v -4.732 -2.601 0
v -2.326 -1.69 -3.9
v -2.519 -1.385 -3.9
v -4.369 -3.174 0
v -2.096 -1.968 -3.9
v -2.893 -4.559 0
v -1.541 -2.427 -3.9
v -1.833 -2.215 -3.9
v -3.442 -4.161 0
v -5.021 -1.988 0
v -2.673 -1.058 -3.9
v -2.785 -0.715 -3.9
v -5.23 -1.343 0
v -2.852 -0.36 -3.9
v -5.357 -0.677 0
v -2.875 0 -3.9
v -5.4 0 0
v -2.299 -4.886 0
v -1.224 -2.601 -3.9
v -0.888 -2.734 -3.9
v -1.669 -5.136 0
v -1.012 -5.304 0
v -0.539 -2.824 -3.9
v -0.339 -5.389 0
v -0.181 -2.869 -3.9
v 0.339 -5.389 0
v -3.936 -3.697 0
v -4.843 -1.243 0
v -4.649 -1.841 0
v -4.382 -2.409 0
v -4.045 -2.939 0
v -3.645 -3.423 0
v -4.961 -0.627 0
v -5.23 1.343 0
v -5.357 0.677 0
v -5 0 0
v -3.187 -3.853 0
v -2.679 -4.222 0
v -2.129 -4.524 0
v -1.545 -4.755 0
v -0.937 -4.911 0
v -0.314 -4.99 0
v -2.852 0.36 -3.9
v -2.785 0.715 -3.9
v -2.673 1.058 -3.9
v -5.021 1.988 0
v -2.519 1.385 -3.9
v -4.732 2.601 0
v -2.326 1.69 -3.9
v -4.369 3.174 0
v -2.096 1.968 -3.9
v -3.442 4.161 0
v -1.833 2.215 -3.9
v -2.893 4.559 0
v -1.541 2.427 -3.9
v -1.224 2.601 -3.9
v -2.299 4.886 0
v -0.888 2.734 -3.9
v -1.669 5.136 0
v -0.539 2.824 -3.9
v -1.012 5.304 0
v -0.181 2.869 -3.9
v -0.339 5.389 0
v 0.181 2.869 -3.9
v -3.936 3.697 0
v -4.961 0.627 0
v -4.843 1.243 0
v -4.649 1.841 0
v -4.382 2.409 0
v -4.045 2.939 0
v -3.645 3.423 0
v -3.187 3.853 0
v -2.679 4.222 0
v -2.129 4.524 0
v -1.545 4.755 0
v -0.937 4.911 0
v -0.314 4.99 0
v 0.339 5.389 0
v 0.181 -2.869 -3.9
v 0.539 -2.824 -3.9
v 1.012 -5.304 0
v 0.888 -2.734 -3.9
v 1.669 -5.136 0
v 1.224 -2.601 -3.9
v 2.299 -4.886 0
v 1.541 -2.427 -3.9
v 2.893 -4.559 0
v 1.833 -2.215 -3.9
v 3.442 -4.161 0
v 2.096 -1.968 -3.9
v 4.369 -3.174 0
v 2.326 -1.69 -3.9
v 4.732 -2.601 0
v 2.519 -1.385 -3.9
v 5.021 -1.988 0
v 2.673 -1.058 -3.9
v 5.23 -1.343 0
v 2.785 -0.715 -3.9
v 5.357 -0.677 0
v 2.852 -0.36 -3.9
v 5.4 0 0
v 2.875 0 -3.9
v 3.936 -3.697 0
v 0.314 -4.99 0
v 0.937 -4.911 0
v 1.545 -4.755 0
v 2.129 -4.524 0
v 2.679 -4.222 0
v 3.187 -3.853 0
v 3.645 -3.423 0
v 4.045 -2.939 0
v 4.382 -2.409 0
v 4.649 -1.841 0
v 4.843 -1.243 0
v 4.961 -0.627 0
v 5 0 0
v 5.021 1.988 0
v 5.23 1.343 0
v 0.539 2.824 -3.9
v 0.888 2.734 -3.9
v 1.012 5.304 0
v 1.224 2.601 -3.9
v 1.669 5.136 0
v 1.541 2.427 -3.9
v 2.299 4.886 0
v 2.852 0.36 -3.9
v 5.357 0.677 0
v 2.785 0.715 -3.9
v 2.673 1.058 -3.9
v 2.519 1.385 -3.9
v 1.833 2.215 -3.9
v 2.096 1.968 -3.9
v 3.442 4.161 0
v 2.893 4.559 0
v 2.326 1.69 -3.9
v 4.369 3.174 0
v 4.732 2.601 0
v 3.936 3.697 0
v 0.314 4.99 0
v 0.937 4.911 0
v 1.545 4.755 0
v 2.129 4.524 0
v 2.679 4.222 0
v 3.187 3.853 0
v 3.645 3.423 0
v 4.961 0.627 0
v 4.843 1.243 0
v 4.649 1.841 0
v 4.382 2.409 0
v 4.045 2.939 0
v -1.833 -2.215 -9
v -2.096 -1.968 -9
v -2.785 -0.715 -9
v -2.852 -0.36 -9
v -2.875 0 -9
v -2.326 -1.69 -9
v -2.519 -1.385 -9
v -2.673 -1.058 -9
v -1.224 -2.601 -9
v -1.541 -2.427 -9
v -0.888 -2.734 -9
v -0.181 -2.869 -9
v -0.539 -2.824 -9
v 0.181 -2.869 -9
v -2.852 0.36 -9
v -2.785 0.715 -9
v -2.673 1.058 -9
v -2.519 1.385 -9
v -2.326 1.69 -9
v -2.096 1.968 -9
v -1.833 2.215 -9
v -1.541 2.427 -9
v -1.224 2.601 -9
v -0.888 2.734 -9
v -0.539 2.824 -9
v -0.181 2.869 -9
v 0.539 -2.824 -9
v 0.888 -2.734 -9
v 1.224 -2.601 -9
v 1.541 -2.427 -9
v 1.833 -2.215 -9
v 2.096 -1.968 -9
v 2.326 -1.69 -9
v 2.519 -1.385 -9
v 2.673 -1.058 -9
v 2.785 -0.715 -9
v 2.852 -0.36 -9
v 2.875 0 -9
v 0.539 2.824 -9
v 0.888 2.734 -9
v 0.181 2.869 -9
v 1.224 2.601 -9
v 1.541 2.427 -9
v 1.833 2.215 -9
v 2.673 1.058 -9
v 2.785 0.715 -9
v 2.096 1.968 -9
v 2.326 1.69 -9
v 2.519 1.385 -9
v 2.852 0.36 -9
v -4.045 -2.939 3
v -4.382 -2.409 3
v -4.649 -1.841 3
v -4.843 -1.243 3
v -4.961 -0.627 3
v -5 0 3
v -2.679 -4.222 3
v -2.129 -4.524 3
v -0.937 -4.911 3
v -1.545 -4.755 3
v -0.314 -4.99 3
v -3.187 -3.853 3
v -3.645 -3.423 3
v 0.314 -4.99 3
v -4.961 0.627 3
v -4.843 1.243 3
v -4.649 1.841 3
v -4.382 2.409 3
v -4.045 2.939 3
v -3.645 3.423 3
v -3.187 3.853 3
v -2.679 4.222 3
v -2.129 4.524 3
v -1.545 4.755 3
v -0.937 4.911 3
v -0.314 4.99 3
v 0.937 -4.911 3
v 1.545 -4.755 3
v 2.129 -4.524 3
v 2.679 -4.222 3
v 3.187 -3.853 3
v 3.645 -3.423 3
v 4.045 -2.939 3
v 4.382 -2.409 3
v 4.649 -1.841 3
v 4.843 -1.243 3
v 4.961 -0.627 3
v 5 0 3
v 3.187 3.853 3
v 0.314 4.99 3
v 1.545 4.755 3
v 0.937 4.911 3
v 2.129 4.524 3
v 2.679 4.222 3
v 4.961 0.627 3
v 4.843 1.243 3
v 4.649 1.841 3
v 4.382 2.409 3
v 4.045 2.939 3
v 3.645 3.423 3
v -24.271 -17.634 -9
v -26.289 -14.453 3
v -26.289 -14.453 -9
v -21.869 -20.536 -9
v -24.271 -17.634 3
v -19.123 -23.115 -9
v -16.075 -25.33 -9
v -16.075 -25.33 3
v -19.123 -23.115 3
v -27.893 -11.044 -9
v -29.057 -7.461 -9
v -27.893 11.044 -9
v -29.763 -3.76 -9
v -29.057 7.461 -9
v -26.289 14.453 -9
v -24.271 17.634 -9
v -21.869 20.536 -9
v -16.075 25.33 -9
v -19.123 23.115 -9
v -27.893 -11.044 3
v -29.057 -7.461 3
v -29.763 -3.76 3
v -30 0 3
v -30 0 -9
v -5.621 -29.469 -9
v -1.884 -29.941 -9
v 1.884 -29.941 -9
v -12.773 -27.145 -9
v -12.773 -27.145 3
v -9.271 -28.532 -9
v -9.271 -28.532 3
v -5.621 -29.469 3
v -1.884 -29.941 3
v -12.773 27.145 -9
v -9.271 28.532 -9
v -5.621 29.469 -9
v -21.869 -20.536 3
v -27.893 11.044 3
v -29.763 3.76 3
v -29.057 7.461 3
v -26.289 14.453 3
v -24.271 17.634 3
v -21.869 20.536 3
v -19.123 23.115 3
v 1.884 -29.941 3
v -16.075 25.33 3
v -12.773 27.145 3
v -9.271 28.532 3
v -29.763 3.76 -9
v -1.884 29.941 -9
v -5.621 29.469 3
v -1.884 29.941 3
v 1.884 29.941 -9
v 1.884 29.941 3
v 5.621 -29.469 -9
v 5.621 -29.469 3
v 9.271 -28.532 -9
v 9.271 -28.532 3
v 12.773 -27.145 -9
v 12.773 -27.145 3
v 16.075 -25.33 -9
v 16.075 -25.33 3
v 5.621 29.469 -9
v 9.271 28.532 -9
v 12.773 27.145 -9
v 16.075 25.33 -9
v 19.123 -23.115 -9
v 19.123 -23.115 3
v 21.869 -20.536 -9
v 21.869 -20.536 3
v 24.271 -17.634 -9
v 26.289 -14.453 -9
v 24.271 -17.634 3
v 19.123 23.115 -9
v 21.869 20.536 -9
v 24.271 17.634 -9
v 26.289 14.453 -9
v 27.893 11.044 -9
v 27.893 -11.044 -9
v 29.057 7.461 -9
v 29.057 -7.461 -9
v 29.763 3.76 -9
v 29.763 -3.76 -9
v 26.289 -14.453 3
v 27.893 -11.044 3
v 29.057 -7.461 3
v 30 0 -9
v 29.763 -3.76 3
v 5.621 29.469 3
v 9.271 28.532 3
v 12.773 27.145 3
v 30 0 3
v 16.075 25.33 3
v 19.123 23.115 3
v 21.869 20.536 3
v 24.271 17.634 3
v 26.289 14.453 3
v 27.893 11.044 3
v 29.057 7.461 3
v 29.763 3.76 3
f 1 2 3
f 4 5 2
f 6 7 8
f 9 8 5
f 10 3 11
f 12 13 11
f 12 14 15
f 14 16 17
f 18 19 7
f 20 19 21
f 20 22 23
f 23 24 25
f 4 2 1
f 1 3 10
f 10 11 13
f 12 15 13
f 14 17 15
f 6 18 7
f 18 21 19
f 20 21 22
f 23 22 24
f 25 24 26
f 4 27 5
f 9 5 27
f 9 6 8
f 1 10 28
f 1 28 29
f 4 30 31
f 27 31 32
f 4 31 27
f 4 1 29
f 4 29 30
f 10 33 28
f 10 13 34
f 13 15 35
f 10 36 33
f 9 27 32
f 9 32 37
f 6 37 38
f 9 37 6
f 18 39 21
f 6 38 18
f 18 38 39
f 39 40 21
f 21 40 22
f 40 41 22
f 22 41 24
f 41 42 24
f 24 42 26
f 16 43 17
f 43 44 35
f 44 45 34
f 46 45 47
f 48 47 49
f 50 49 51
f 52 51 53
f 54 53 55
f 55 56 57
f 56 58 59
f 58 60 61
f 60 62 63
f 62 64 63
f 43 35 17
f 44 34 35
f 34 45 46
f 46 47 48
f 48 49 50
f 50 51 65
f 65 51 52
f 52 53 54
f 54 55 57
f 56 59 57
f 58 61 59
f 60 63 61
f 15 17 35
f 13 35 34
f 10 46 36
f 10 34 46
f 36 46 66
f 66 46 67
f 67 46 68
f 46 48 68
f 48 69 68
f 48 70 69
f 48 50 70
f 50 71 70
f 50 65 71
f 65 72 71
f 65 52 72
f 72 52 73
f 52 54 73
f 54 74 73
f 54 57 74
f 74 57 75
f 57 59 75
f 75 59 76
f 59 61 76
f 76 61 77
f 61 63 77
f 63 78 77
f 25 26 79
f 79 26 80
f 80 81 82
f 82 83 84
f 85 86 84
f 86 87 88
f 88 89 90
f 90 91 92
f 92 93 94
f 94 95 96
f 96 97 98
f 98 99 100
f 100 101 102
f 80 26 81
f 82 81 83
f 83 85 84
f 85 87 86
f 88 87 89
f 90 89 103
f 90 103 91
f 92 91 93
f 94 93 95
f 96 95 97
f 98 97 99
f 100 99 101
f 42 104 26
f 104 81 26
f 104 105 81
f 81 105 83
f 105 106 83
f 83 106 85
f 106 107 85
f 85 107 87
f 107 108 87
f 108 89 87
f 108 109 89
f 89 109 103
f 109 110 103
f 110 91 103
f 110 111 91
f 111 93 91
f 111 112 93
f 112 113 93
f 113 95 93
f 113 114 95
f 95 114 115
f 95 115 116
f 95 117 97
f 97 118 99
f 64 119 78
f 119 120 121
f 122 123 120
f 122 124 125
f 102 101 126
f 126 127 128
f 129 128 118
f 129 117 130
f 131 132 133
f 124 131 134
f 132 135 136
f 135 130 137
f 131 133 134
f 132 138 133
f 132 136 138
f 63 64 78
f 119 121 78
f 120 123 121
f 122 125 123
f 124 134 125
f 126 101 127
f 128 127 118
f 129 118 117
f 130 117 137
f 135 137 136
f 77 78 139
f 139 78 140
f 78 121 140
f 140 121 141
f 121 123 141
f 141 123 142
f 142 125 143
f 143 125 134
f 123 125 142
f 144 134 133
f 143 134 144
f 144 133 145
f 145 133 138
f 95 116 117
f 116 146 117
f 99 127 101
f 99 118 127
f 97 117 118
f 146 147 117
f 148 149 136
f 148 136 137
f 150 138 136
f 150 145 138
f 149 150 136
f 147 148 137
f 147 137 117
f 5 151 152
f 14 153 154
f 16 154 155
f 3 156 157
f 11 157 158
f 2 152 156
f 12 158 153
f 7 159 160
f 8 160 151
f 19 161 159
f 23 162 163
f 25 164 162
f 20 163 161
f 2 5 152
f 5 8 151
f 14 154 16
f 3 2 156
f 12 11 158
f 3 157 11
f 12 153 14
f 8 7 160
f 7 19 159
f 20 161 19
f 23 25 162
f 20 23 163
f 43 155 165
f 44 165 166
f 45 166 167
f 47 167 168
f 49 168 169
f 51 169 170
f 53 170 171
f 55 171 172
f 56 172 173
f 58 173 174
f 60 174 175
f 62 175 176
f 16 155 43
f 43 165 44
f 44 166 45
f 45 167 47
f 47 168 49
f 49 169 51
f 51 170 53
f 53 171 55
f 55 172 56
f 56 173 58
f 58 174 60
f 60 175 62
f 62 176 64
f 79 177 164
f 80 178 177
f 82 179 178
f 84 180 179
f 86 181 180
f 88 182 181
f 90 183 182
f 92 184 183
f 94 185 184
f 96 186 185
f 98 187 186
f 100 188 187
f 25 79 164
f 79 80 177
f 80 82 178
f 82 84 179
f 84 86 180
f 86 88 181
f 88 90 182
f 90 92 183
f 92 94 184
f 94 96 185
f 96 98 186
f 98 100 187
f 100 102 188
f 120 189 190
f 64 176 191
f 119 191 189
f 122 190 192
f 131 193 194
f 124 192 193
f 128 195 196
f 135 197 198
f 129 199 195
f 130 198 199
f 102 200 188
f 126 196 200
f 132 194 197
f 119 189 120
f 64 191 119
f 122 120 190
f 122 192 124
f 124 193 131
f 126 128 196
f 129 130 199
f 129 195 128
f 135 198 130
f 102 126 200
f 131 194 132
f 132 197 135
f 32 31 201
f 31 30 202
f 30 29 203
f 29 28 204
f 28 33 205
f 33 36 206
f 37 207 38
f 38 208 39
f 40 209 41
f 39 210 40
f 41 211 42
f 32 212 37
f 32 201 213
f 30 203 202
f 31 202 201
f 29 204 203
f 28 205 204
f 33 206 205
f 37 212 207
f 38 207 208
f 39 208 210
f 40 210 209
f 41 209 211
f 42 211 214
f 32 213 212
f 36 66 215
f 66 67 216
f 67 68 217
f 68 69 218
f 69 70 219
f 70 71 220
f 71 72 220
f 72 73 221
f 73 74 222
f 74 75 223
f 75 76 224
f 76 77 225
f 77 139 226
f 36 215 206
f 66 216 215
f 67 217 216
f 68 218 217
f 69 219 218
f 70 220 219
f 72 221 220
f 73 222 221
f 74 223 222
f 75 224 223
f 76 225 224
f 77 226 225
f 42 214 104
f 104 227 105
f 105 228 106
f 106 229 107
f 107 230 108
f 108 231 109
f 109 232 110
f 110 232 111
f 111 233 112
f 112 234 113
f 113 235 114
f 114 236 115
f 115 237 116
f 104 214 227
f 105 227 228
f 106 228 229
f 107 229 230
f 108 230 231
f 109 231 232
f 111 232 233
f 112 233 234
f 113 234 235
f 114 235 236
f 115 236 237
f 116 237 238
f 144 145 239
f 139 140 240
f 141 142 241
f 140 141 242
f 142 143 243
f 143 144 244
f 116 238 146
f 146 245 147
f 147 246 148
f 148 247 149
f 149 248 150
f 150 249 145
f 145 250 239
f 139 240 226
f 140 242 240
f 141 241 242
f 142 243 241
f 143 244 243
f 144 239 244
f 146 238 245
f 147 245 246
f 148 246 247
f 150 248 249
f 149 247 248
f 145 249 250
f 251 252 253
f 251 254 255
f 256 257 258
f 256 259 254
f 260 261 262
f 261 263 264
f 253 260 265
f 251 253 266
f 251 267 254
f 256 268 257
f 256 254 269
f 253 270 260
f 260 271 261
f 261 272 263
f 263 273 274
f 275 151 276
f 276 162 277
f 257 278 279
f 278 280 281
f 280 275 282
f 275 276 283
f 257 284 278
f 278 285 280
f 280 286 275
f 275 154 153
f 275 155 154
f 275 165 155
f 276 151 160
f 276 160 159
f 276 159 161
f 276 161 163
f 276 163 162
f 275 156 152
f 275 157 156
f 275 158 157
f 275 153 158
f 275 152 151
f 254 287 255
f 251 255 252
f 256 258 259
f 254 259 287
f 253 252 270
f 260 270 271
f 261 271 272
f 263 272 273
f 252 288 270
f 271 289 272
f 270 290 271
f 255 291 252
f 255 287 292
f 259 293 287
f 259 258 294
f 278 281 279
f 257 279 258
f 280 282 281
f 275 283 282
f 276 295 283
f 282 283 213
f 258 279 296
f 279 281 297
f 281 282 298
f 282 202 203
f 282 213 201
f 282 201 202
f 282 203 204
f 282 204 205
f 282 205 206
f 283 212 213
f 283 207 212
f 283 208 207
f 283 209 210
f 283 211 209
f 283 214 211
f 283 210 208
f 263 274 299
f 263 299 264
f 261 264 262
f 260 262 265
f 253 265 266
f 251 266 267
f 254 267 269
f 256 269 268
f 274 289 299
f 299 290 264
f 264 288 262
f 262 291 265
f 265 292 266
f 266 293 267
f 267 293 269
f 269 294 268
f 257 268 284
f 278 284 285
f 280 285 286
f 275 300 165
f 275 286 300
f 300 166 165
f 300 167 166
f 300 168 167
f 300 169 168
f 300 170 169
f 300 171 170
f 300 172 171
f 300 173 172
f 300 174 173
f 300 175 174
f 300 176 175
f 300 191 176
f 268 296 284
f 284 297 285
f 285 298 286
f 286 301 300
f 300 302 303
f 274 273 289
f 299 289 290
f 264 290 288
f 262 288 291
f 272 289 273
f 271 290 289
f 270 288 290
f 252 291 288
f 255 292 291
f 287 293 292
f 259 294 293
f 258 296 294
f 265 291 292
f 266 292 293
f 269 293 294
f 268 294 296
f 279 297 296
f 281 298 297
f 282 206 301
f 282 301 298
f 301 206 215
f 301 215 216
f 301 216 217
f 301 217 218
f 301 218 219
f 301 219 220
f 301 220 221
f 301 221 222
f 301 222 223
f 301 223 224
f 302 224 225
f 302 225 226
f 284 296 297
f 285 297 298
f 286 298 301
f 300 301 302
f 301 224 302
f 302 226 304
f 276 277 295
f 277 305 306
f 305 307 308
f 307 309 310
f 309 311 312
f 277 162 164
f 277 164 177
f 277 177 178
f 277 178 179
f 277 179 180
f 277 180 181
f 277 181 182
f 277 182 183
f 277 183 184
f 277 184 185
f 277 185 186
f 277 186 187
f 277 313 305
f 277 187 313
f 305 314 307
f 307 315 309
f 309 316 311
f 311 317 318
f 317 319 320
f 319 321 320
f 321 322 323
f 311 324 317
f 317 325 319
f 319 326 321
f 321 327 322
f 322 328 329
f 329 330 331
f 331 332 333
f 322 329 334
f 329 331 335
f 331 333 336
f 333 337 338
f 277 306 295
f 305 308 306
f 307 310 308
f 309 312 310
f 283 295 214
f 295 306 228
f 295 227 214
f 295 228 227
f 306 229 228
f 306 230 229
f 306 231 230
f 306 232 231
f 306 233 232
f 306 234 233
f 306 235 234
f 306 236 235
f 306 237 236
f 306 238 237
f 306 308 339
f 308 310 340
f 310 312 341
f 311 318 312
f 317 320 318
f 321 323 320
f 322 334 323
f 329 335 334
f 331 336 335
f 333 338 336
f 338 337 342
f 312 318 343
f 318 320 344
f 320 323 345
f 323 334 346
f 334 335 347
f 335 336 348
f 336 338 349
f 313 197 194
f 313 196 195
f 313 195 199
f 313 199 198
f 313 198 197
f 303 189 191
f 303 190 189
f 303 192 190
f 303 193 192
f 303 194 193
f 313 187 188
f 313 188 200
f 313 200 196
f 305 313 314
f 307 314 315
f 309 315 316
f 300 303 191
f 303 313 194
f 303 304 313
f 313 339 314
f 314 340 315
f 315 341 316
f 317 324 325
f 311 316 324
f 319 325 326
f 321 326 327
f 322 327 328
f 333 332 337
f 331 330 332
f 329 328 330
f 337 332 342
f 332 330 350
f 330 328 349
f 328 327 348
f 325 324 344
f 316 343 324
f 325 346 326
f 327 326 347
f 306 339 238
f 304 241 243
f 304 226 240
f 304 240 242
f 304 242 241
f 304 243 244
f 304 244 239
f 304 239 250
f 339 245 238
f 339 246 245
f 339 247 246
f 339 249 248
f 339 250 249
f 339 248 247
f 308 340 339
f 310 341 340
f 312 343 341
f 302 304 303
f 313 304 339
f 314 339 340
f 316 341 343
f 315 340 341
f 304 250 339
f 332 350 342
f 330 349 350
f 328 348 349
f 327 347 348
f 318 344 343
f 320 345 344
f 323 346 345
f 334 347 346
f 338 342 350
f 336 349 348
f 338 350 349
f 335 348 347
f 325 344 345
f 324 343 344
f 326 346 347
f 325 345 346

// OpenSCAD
$fn = 50;

difference() {
	union() {
		translate(v = [0, 0, -9.0]) {
			cylinder(h = 12, r = 30.0);
		}
	}
	union() {
		translate(v = [0, 0, 0]) {
			rotate(a = [0, 0, 0]) {
				difference() {
					union() {
						translate(v = [0, 0, -12.0]) {
							cylinder(h = 12, r = 2.6);
						}
						translate(v = [0, 0, -3.9]) {
							cylinder(h = 3.9, r1 = 2.875, r2 = 5.4);
						}
						translate(v = [0, 0, -12.0]) {
							cylinder(h = 12, r = 2.875);
						}
						translate(v = [0, 0, -12.0]) {
							cylinder(h = 12, r = 2.6);
						}
					}
					union();
				}
			}
		}
		#cylinder(h = 3, r = 5.0);
	}
}
